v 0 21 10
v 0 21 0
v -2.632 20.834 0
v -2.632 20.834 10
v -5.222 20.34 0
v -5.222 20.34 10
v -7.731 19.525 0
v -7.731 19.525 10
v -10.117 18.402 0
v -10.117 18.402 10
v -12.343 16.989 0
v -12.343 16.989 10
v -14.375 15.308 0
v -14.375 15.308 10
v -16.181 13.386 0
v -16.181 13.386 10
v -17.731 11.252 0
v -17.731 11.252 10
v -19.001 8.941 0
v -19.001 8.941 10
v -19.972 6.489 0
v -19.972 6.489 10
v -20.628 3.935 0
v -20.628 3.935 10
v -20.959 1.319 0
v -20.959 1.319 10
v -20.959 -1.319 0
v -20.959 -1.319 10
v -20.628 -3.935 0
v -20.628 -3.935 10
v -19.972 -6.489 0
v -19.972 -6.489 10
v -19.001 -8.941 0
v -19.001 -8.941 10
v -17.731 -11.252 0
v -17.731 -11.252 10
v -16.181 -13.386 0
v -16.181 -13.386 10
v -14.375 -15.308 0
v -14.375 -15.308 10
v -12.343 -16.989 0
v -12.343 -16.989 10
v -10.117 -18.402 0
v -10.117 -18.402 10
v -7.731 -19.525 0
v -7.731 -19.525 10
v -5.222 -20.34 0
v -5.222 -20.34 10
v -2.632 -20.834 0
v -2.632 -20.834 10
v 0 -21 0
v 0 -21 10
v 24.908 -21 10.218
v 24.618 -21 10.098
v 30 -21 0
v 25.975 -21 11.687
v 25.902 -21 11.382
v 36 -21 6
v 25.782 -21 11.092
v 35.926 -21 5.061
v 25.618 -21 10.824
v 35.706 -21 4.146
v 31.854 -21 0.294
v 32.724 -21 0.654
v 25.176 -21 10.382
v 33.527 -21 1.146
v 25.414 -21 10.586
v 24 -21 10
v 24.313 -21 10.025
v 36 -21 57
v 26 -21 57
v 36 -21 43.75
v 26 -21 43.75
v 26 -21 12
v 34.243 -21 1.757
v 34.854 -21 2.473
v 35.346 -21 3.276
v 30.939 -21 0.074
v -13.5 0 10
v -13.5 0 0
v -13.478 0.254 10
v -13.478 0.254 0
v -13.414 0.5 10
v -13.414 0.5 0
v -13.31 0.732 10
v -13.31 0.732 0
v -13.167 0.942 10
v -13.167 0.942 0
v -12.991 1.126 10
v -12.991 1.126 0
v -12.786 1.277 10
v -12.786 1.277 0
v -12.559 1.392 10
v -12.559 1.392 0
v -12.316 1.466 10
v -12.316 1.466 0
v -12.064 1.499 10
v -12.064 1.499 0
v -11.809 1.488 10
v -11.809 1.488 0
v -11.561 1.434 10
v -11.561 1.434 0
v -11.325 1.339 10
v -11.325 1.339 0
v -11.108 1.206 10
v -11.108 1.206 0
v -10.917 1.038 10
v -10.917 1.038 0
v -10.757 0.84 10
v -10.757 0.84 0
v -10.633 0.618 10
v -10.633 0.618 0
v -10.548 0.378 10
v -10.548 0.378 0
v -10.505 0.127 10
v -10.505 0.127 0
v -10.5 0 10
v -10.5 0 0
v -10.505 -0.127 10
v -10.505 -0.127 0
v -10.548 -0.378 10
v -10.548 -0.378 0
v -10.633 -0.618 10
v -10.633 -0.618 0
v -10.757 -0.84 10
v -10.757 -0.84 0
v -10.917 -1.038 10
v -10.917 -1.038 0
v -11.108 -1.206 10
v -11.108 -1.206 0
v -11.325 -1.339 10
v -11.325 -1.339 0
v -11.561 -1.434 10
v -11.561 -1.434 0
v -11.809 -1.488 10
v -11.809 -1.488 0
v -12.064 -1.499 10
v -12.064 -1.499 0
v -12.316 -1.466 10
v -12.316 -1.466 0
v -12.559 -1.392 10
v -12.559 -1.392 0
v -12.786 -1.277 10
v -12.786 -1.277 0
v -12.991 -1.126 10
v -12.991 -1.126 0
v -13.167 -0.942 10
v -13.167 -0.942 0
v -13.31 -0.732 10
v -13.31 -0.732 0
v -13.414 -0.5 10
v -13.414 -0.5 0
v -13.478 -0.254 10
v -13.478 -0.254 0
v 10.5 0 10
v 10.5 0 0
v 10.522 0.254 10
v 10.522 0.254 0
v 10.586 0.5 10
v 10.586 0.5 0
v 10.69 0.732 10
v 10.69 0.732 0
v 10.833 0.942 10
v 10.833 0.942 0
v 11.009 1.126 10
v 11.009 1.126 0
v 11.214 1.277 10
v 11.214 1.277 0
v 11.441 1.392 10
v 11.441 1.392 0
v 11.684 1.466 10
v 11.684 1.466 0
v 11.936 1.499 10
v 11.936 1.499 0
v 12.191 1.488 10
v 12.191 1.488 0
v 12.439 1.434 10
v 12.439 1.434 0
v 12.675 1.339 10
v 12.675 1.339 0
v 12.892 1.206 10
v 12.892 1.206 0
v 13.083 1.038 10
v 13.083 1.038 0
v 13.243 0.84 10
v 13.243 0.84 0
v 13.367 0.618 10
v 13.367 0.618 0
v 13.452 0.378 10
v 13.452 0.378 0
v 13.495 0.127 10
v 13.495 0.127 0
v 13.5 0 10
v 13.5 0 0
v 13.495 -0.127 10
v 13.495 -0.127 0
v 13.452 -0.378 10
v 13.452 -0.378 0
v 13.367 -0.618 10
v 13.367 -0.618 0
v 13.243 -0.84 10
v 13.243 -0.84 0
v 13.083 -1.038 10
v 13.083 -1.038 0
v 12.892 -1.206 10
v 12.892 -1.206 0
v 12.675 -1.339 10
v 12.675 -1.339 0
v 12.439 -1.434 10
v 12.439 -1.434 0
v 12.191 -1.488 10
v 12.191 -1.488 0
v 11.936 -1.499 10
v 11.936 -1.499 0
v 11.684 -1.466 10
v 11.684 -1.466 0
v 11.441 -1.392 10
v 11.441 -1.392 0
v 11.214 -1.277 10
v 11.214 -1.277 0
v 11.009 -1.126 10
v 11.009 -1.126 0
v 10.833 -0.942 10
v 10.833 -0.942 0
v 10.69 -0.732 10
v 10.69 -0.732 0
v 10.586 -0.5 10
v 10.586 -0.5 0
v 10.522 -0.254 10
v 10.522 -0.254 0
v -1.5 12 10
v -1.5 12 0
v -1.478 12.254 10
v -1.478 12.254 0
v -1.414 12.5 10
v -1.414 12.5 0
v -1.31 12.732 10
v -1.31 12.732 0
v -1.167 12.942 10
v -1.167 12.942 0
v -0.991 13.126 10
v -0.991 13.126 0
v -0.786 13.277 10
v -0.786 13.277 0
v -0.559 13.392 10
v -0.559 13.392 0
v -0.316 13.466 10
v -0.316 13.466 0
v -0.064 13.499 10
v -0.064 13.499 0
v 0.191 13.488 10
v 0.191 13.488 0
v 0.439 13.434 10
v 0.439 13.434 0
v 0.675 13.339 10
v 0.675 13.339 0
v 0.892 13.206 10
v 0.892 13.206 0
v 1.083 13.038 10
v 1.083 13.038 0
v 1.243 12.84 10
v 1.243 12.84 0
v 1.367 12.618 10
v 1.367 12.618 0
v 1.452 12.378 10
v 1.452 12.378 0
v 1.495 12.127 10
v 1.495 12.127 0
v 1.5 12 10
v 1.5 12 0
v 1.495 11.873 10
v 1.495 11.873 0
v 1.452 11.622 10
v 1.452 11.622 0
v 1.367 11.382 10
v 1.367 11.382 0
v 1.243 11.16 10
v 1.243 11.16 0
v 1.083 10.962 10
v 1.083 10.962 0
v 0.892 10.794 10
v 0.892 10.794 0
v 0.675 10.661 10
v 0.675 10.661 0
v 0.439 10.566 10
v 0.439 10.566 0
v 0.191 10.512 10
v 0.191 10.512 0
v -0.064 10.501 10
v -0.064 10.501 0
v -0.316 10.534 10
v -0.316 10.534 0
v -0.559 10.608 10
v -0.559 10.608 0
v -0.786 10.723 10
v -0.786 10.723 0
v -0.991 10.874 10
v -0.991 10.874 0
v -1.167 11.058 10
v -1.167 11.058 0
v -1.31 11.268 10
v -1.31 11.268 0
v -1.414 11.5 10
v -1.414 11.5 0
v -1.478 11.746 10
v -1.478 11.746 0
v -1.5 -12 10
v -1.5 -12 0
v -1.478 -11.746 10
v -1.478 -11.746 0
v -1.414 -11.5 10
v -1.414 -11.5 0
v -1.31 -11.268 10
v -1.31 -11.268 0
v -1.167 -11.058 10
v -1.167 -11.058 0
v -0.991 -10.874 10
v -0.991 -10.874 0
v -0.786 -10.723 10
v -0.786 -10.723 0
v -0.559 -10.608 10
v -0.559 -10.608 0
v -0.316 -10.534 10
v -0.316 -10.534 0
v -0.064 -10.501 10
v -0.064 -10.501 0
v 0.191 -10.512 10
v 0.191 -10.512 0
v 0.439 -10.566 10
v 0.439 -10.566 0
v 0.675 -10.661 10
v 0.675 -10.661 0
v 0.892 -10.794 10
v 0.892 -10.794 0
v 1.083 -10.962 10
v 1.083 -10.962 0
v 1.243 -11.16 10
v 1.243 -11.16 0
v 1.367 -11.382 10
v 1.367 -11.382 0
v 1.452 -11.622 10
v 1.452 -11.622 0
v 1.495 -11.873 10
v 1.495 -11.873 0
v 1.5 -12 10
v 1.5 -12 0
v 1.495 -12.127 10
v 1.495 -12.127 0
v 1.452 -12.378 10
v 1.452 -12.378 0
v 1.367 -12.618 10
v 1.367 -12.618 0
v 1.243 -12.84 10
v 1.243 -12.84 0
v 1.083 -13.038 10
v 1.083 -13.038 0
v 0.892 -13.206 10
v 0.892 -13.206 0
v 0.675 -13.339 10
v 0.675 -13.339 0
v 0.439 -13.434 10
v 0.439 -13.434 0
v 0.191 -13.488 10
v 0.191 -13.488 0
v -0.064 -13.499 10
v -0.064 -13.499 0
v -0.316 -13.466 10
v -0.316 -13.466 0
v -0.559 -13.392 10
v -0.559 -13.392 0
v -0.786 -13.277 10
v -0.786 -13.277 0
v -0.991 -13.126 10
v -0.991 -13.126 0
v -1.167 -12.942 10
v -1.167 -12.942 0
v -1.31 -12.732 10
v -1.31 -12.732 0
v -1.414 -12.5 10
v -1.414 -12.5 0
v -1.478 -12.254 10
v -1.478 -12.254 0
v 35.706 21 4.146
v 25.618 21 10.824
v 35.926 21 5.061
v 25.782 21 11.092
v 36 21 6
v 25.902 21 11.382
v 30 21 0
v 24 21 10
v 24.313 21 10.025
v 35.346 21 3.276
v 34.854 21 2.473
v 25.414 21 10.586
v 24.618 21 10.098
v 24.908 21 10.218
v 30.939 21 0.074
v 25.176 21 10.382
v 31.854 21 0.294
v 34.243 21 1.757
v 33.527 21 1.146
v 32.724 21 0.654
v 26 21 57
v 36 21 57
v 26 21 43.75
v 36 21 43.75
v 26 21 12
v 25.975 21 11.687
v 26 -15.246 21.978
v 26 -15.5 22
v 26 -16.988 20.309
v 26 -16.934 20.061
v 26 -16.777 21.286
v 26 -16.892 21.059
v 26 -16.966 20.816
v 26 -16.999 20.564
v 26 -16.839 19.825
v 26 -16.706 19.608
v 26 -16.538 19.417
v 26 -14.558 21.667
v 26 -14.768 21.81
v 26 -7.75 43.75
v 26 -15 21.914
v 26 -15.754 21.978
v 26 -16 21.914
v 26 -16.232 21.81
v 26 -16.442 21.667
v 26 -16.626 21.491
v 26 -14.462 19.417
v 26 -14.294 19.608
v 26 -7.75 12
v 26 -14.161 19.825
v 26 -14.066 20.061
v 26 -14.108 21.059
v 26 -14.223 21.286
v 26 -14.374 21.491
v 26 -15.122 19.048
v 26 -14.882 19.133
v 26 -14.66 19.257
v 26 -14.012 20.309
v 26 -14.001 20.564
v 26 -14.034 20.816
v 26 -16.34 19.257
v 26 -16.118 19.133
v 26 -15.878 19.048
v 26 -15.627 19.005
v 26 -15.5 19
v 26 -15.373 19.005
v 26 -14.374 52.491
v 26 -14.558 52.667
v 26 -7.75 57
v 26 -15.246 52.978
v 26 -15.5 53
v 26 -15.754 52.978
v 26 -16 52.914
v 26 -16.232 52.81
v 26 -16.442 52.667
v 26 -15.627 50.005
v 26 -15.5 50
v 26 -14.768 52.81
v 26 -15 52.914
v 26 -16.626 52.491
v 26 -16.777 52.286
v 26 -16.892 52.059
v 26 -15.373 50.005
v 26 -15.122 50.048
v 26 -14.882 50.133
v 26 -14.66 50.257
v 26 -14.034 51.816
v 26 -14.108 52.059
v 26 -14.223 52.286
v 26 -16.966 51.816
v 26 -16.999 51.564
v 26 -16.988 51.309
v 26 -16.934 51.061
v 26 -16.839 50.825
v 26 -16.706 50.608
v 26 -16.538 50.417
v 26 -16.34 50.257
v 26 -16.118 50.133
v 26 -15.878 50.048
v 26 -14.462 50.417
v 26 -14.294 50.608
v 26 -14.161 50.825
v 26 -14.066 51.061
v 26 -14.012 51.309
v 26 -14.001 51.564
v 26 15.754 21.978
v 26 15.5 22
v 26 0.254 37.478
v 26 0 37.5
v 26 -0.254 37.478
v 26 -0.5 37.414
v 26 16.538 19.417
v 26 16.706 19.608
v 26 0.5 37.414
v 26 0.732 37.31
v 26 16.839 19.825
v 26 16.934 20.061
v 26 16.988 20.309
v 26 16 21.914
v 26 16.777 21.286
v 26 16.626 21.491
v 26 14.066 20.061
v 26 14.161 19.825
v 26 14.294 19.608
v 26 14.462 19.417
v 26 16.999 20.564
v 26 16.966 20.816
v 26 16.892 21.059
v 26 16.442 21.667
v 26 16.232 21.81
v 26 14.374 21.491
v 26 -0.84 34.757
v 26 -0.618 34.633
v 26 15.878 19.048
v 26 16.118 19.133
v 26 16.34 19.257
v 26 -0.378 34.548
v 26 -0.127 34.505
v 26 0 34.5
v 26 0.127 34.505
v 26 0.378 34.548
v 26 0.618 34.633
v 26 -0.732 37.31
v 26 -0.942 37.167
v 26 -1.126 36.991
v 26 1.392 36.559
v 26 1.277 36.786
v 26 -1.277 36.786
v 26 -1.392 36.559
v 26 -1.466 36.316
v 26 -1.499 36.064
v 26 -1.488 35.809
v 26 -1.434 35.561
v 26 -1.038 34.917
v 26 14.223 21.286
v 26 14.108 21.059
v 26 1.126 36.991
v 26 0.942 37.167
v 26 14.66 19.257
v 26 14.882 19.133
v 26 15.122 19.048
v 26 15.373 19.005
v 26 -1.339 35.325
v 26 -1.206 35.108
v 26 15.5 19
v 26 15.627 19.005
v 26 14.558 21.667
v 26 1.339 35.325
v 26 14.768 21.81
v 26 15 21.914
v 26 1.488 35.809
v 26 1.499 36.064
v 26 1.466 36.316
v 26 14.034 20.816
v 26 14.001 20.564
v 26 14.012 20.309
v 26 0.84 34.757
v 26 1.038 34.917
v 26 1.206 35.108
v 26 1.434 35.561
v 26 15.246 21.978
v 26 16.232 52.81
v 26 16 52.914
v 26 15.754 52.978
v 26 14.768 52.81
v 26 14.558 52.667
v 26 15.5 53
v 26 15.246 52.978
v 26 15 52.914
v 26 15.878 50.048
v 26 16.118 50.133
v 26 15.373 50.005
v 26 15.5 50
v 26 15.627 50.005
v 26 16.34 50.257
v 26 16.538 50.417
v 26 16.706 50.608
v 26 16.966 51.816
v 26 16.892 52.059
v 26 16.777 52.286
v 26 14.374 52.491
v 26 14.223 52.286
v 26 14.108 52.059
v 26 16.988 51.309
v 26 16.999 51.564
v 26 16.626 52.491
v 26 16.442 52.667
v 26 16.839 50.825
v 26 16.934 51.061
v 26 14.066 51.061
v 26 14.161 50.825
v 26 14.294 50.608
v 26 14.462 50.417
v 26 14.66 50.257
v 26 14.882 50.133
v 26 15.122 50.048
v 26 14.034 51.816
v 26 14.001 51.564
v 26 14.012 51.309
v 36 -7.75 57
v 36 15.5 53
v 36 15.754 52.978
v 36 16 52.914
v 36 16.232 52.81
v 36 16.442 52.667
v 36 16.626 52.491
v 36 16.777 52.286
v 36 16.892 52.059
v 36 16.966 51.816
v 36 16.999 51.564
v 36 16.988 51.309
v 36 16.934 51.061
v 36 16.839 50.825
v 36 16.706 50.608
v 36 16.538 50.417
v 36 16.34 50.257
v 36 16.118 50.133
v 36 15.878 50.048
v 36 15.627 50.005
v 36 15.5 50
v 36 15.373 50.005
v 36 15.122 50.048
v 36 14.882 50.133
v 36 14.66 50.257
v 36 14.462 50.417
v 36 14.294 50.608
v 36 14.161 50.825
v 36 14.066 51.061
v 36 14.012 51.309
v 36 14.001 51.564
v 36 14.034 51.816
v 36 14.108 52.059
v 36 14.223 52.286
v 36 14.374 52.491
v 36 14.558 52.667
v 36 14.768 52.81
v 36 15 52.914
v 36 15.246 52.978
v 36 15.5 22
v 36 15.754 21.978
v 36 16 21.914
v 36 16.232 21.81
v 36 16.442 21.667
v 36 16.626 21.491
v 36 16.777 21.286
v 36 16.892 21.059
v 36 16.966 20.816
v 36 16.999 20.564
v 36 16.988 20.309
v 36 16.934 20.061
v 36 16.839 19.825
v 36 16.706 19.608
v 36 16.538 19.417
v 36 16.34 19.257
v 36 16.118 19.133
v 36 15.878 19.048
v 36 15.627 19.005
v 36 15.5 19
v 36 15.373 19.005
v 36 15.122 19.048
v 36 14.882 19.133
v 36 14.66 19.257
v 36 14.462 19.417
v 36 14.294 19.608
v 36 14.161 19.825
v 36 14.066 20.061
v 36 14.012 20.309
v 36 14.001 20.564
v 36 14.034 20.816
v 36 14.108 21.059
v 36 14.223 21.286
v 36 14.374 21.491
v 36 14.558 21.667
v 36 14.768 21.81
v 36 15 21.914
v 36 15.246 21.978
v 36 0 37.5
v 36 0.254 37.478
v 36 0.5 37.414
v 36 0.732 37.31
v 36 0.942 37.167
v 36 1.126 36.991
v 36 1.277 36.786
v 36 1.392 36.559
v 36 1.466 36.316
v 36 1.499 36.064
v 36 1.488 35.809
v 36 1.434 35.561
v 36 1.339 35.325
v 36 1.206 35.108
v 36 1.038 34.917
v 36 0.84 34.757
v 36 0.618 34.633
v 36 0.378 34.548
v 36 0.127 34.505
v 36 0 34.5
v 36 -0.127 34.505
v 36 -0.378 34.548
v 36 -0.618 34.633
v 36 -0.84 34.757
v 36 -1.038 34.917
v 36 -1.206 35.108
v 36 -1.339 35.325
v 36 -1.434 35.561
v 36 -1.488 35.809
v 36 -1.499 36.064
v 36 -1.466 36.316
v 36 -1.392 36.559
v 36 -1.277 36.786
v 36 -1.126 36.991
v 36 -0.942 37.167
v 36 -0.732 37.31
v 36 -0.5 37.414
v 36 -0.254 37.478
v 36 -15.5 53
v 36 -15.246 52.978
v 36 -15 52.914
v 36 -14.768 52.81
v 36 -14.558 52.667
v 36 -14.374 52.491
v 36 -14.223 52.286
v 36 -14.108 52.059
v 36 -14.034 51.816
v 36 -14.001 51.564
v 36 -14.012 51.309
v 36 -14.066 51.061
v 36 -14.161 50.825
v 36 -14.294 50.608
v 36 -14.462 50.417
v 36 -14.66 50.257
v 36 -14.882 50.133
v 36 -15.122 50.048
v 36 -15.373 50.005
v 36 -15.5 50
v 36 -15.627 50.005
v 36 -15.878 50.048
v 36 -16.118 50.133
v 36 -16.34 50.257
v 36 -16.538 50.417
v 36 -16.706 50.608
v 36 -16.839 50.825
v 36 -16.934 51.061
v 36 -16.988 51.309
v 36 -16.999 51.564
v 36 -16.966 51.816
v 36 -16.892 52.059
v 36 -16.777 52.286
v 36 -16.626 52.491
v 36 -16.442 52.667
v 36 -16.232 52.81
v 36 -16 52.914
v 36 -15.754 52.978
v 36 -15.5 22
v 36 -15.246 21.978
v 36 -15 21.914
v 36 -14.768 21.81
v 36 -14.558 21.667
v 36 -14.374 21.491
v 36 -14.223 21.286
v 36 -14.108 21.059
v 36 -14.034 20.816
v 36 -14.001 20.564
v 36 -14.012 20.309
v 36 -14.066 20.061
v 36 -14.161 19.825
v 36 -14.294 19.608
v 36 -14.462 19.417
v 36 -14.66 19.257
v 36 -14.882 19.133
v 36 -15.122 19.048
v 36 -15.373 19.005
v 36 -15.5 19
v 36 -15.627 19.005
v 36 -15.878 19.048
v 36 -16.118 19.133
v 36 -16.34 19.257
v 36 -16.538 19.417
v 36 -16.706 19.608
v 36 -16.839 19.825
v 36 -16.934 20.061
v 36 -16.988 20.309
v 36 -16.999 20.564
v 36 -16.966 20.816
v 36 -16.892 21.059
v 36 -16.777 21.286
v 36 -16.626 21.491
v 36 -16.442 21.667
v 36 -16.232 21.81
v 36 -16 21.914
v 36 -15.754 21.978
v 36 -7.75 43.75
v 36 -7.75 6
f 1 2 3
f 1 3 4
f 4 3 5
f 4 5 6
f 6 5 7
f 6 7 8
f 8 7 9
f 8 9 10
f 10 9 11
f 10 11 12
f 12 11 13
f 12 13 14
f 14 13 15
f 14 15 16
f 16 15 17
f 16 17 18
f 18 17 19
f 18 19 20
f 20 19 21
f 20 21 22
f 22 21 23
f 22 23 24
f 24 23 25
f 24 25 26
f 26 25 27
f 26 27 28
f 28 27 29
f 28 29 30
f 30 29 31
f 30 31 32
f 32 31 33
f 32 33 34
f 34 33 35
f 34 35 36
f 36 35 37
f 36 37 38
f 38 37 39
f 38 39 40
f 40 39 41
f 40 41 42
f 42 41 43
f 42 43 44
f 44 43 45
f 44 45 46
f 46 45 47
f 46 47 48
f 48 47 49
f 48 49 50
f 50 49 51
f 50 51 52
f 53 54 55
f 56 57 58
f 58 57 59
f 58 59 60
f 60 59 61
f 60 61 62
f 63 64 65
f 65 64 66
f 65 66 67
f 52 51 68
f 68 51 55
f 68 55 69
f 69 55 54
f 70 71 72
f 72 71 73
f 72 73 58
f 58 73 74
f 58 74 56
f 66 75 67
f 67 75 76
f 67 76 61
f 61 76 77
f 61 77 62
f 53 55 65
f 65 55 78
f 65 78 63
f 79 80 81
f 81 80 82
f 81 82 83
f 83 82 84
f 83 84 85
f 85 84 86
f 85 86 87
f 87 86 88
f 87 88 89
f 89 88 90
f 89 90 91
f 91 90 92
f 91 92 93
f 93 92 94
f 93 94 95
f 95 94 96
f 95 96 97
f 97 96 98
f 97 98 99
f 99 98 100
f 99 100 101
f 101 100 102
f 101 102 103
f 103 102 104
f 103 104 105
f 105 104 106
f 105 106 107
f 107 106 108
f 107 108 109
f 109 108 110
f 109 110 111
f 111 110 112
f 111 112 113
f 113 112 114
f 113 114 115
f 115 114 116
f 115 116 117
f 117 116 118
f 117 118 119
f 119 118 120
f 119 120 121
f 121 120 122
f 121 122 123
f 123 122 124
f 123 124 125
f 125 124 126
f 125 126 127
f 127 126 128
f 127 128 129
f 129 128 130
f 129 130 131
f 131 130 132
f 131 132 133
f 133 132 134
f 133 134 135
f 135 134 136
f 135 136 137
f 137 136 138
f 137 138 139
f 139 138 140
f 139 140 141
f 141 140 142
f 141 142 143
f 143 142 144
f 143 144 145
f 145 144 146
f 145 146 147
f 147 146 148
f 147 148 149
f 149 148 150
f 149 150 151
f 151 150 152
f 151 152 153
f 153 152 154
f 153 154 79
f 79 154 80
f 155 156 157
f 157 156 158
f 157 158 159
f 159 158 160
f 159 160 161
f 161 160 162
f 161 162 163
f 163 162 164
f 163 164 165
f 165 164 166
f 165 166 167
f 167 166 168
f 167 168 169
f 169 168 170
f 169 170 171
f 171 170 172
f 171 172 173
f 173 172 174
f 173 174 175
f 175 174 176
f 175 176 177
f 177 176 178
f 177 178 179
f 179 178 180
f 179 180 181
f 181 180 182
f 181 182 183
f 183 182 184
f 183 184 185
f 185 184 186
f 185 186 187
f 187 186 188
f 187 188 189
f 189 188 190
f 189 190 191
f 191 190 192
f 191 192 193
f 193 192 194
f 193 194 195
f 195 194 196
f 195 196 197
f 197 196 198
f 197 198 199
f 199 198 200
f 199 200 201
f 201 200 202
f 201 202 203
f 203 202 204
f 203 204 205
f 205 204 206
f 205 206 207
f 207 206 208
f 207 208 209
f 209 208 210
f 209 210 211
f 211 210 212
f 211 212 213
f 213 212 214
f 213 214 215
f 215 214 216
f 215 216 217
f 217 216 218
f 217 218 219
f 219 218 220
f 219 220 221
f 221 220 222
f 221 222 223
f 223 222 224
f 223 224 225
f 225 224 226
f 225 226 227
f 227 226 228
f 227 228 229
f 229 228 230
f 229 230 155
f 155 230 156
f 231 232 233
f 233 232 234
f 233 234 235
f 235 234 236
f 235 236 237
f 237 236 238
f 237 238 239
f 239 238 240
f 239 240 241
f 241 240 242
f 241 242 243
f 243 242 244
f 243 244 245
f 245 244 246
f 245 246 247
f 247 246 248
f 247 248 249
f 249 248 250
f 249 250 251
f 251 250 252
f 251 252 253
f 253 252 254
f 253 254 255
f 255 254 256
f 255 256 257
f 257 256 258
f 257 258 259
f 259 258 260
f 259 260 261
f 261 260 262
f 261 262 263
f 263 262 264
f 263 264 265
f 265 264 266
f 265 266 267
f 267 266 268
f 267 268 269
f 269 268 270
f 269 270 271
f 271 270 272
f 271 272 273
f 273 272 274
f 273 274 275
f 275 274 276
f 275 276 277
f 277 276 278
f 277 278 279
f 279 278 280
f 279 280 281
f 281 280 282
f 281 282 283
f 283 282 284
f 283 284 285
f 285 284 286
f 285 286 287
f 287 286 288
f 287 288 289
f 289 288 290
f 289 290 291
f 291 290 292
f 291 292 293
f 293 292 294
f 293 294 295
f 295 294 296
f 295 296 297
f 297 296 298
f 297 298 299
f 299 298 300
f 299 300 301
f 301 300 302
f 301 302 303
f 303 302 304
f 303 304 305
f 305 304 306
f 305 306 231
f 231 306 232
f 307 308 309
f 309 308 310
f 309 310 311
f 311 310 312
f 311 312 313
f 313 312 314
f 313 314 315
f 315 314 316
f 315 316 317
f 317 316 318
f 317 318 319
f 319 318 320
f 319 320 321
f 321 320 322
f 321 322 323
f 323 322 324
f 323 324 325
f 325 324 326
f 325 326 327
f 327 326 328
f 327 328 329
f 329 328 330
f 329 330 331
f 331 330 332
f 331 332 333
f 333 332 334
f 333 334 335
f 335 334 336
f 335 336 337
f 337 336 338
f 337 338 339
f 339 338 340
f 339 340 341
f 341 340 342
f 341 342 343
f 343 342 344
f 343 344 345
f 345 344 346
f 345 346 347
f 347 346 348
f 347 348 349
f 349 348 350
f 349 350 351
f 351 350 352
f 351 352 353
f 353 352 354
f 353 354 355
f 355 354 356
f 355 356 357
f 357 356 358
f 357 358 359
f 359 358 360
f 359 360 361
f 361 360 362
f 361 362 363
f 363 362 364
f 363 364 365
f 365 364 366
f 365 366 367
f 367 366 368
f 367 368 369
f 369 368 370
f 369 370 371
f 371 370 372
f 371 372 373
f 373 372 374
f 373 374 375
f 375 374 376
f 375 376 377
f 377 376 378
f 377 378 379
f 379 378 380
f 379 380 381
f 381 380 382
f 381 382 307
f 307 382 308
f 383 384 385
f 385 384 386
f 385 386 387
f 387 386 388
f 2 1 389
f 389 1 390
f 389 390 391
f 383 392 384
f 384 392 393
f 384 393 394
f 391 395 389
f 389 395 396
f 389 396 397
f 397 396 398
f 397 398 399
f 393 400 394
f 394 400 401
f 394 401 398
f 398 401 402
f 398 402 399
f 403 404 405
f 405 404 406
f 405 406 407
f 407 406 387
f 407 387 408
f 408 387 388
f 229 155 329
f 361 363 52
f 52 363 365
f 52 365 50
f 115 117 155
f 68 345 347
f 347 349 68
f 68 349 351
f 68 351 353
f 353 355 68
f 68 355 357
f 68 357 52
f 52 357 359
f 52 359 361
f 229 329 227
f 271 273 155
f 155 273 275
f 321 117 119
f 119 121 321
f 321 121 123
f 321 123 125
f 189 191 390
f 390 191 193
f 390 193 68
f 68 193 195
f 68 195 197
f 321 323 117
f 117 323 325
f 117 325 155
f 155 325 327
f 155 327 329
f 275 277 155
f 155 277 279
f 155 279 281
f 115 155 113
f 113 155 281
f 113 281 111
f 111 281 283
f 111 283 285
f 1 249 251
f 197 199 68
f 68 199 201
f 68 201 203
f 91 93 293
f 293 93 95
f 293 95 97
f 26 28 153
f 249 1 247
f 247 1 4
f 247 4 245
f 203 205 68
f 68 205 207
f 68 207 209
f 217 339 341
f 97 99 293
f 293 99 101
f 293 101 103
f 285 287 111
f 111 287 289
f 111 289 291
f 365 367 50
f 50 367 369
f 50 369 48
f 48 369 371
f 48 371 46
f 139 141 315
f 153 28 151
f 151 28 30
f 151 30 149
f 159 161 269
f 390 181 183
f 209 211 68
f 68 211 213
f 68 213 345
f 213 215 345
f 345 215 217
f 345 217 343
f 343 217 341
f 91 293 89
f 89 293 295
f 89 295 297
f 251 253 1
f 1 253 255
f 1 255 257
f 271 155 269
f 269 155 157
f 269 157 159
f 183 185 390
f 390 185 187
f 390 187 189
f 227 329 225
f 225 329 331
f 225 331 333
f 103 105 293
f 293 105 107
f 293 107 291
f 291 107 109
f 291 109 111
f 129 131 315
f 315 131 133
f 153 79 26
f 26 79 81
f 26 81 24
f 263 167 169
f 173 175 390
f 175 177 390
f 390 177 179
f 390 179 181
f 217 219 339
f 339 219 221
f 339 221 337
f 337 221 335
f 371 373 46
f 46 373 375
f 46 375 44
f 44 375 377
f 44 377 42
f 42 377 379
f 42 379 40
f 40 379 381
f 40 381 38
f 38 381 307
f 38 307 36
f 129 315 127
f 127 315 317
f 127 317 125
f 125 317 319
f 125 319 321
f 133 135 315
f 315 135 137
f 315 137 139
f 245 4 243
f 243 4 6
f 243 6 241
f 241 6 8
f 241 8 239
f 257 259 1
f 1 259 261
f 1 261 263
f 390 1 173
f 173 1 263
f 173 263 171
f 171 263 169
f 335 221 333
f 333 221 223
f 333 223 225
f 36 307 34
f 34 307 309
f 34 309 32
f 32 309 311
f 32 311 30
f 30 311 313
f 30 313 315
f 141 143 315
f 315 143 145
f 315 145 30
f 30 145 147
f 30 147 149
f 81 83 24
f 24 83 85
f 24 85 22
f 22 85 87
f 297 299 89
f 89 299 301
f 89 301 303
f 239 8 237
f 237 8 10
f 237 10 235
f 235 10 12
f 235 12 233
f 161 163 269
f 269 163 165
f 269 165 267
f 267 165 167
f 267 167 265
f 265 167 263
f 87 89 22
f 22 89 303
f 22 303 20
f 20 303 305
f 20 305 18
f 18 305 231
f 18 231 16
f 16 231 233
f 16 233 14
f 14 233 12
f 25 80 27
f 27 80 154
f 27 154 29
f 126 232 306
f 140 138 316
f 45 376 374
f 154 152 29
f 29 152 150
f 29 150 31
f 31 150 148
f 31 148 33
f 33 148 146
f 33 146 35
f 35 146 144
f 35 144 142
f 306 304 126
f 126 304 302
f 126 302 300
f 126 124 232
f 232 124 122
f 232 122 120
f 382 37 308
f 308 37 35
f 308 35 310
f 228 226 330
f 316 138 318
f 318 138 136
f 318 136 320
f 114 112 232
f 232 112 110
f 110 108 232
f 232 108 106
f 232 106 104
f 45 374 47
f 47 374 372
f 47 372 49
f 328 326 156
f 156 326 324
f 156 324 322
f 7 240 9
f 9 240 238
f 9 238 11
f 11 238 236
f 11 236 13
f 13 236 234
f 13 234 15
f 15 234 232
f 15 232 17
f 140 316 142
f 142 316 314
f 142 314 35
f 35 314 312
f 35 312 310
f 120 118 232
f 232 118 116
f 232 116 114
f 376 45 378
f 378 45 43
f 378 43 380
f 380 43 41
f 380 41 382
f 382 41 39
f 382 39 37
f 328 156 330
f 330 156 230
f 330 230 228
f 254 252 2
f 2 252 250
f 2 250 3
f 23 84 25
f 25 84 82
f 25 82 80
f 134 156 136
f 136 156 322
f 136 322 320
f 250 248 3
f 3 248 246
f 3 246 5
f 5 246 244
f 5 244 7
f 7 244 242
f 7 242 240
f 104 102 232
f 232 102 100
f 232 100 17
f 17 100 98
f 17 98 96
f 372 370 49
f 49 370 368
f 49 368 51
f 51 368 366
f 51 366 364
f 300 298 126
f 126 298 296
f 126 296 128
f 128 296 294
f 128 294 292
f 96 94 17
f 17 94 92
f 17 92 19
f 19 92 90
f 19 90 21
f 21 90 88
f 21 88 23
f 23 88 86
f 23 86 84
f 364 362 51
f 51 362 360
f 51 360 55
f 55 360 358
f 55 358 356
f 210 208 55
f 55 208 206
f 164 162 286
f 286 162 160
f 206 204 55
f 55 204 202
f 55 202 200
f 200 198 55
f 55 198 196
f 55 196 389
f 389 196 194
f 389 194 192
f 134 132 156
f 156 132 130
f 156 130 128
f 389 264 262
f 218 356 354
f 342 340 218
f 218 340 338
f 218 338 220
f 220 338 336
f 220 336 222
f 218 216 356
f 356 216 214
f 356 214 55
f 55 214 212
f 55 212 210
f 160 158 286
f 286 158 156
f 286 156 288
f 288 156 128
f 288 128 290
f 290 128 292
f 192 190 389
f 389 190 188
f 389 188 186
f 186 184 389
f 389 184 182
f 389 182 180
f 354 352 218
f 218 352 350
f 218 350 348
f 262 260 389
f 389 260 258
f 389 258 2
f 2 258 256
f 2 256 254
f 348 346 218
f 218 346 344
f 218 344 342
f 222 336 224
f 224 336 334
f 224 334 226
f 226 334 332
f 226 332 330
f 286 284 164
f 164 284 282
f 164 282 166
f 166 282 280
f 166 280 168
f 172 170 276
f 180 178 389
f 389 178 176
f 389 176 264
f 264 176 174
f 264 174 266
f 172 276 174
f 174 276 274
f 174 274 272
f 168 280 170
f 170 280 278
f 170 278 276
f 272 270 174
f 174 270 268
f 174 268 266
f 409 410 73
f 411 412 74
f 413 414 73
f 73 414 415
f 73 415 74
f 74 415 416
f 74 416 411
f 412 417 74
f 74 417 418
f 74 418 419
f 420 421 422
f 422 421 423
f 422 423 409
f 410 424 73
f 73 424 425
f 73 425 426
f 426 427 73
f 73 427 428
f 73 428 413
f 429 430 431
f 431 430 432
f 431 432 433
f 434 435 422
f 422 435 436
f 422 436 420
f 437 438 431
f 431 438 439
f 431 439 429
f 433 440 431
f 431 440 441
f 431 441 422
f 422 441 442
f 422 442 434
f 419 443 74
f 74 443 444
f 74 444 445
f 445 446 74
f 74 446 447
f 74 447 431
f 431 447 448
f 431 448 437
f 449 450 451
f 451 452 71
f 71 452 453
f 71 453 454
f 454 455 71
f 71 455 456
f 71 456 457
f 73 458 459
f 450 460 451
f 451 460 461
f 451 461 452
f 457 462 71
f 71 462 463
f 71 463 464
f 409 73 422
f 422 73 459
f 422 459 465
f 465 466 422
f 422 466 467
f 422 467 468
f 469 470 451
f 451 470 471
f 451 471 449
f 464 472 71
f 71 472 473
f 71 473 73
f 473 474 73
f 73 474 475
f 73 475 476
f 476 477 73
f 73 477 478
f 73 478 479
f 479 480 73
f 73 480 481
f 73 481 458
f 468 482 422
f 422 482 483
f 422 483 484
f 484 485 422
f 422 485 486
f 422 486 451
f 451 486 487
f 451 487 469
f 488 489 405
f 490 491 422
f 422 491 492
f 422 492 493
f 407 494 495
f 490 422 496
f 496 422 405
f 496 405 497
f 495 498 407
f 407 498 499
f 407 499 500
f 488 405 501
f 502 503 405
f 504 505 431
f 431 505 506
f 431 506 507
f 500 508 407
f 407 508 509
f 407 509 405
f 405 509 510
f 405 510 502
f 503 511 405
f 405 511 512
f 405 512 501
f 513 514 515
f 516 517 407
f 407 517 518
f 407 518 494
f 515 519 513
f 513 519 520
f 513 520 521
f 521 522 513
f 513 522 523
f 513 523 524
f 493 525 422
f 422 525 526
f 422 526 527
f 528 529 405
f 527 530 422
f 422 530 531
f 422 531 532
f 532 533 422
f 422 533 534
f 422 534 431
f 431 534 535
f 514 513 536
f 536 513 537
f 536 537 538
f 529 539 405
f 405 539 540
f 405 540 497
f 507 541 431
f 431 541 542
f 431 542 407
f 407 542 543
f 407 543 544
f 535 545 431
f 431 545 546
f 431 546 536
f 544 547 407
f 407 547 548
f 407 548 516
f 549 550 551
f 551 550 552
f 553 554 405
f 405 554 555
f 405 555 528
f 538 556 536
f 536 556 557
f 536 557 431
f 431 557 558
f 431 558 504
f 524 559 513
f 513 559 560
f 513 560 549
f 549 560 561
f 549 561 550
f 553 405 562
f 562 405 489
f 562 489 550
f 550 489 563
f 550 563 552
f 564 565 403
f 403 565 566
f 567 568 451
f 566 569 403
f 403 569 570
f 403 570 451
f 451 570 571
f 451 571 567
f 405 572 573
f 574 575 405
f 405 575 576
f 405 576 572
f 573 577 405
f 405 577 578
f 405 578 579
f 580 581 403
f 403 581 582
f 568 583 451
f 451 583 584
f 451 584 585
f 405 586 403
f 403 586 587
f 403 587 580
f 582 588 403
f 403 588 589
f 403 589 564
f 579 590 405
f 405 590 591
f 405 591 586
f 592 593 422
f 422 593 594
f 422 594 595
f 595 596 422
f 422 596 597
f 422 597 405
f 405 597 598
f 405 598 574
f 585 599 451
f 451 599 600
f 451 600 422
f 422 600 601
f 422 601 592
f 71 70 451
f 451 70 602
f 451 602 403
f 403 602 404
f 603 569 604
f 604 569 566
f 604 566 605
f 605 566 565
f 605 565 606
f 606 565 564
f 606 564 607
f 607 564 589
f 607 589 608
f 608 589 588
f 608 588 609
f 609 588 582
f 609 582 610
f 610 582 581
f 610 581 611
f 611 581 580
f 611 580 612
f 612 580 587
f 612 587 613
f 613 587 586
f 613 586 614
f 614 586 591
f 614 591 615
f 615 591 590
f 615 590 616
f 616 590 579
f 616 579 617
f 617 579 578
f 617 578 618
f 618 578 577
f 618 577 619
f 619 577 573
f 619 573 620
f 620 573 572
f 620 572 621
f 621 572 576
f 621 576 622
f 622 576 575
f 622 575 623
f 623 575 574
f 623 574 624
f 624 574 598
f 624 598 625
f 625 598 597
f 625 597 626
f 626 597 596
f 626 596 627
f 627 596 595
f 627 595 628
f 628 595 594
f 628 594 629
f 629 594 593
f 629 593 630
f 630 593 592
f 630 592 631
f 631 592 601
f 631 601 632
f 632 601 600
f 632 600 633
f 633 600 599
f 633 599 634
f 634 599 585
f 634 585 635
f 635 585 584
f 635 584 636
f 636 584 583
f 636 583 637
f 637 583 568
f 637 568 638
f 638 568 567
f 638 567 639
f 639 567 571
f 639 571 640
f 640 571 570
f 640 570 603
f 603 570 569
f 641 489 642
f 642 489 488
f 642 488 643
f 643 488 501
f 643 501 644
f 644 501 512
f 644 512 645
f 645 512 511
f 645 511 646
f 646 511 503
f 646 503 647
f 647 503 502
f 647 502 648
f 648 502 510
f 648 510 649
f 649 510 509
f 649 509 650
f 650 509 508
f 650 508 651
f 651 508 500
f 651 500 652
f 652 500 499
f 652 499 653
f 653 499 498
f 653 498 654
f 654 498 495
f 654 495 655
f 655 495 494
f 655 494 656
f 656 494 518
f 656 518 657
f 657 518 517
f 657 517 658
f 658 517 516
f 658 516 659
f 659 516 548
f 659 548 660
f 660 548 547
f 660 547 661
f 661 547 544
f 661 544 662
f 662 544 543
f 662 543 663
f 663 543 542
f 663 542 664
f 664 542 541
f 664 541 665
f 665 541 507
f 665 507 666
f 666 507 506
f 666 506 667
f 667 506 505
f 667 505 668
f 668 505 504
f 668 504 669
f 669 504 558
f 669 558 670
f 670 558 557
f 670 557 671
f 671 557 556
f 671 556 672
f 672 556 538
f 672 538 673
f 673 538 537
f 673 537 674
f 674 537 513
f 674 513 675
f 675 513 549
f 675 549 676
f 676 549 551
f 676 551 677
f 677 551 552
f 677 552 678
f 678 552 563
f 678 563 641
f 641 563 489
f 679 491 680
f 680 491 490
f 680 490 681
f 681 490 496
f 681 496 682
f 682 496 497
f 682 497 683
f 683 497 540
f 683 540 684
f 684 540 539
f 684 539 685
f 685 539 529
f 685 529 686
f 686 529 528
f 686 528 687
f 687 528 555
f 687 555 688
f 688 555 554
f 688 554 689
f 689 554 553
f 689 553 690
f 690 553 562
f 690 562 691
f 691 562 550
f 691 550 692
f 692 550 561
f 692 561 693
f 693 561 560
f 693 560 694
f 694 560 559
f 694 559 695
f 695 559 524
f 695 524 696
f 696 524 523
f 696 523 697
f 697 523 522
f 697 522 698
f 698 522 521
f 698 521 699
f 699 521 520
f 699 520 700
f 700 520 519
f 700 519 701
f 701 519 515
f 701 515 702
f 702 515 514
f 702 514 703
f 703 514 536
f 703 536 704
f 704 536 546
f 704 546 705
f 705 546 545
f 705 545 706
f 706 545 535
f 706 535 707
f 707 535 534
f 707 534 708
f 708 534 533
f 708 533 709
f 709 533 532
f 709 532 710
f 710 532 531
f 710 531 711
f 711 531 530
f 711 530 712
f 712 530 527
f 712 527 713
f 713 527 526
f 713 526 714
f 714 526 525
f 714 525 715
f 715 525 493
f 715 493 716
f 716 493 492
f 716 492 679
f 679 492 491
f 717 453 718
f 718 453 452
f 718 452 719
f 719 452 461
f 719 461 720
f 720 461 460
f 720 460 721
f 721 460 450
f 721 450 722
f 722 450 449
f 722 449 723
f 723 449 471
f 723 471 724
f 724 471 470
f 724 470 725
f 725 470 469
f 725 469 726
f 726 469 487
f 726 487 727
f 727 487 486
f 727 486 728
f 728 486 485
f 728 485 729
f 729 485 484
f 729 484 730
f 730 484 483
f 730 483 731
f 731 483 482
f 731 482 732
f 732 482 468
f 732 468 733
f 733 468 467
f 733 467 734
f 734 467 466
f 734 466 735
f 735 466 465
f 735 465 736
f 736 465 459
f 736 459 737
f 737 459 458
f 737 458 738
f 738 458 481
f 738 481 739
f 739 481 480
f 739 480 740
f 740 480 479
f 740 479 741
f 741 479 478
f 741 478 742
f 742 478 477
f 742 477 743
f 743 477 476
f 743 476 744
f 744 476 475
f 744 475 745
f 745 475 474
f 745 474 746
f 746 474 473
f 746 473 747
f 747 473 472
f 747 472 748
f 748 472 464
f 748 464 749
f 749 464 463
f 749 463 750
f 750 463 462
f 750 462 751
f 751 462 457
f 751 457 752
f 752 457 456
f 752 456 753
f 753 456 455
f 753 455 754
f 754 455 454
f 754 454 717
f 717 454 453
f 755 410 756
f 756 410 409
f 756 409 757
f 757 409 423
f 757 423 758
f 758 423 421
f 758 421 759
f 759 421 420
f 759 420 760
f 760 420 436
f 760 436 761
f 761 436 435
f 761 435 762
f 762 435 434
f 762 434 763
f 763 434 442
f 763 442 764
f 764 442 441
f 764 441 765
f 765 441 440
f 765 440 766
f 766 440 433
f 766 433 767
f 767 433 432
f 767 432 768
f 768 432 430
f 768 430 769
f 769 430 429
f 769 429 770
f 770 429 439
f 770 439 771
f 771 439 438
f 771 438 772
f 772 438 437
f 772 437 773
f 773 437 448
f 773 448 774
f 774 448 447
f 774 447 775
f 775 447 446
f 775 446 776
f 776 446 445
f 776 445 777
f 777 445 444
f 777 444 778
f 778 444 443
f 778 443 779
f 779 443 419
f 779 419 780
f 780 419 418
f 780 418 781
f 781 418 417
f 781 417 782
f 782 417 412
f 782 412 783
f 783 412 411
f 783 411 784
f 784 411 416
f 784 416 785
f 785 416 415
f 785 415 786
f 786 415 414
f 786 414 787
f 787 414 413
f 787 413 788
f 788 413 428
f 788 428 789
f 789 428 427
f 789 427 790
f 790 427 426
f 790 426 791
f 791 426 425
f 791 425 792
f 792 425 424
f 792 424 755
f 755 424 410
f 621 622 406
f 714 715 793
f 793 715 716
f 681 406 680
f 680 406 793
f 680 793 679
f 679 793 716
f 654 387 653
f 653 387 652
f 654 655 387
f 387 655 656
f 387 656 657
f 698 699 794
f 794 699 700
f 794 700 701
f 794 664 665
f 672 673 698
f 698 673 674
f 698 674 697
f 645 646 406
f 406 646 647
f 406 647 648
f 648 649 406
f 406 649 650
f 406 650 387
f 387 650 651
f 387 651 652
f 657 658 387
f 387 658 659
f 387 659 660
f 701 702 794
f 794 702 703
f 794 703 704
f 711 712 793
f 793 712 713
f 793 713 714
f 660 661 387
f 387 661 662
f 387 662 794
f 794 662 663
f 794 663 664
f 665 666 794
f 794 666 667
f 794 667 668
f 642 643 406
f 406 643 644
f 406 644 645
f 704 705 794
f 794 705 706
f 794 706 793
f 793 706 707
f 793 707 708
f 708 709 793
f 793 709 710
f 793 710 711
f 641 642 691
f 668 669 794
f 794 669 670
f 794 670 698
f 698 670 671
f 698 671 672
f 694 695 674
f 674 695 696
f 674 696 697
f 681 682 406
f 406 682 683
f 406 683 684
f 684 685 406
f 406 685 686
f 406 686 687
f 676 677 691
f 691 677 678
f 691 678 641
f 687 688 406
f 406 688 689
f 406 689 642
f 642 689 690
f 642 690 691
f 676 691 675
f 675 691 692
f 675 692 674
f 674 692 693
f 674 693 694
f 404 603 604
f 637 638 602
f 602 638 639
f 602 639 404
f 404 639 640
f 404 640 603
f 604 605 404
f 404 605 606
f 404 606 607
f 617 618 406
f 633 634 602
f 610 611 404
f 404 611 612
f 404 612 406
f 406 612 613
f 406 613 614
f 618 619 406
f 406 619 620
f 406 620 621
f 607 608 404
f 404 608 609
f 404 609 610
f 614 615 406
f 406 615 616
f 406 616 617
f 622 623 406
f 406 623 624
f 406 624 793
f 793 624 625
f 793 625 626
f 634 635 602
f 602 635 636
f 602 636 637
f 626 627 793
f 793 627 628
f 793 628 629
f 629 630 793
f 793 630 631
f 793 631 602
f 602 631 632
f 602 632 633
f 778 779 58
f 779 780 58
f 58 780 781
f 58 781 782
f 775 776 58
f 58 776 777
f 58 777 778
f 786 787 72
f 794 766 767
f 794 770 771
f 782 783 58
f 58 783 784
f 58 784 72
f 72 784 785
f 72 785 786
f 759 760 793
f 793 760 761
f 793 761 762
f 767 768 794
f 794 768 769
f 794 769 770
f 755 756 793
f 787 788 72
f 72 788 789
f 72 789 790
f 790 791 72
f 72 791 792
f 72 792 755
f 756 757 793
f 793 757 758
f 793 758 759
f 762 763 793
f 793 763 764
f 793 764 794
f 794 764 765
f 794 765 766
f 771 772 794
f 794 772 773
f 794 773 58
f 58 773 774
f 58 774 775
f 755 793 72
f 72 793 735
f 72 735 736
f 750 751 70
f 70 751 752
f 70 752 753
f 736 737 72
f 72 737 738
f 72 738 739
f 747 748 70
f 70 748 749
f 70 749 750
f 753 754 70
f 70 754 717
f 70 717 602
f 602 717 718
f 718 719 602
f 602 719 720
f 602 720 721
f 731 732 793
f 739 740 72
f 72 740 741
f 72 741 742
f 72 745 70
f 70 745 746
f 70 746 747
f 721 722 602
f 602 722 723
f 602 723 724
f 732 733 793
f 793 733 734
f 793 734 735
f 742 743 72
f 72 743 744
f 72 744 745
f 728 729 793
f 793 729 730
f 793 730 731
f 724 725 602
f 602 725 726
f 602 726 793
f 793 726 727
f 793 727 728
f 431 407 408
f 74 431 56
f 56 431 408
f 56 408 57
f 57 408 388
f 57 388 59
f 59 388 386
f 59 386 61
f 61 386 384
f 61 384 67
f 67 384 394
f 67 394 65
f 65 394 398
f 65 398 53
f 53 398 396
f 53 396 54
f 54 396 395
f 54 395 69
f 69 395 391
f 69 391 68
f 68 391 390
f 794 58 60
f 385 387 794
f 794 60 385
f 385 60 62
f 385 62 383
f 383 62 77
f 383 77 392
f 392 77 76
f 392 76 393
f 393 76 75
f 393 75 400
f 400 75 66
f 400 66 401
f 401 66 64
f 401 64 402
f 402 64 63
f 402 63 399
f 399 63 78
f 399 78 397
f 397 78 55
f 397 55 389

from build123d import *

# Parameters (mm, degrees)
SKETCH_1_W      = 5
SKETCH_1_H      = 42
EXTRUDE_1_DEPTH = 10
SKETCH_2_W      = 57
SKETCH_2_H      = 42
SKETCH_2_R      = 1.5
EXTRUDE_2_DEPTH = 10
FILLET_1_R      = 2
FILLET_2_R      = 6


with BuildPart() as part:
    # 草图1 → 凸台-拉伸1 (new body)
    with BuildSketch(Plane.XY):
        with BuildLine():
            Line((0, 13.5), (0, 21))
            ThreePointArc((0, 21), (-21, 0), (0, -21))
            Line((0, -21), (0, -13.5))
            ThreePointArc((0, -13.5), (-1.09330348, -13.026979795), (-1.497067446, -11.90625))
            ThreePointArc((-1.497067446, -11.90625), (-8.485281374, -8.485281374), (-11.90625, -1.497067446))
            ThreePointArc((-11.90625, -1.497067446), (-13.5, 0), (-11.90625, 1.497067446))
            ThreePointArc((-11.90625, 1.497067446), (-8.485281374, 8.485281374), (-1.497067446, 11.90625))
            ThreePointArc((-1.497067446, 11.90625), (-1.09330348, 13.026979795), (0, 13.5))
        make_face()
        with BuildLine():
            ThreePointArc((21, 0), (14.849242405, 14.849242405), (0, 21))
            Line((0, 21), (0, 13.5))
            ThreePointArc((0, 13.5), (1.060660172, 13.060660172), (1.5, 12))
            ThreePointArc((1.5, 12), (1.499266682, 11.953102073), (1.497067446, 11.90625))
            ThreePointArc((1.497067446, 11.90625), (8.485281374, 8.485281374), (11.90625, 1.497067446))
            ThreePointArc((11.90625, 1.497067446), (13.026979795, 1.09330348), (13.5, 0))
            ThreePointArc((13.5, 0), (13.026979795, -1.09330348), (11.90625, -1.497067446))
            ThreePointArc((11.90625, -1.497067446), (8.485281374, -8.485281374), (1.497067446, -11.90625))
            ThreePointArc((1.497067446, -11.90625), (1.499266682, -11.953102073), (1.5, -12))
            ThreePointArc((1.5, -12), (1.060660172, -13.060660172), (0, -13.5))
            Line((0, -13.5), (0, -21))
            ThreePointArc((0, -21), (14.849242405, -14.849242405), (21, 0))
        make_face()
        with BuildLine():
            ThreePointArc((0, 10.5), (-1.026979795, 10.90669652), (-1.497067446, 11.90625))
            ThreePointArc((-1.497067446, 11.90625), (-8.485281374, 8.485281374), (-11.90625, 1.497067446))
            ThreePointArc((-11.90625, 1.497067446), (-10.90669652, 1.026979795), (-10.5, 0))
            ThreePointArc((-10.5, 0), (-10.90669652, -1.026979795), (-11.90625, -1.497067446))
            ThreePointArc((-11.90625, -1.497067446), (-8.485281374, -8.485281374), (-1.497067446, -11.90625))
            ThreePointArc((-1.497067446, -11.90625), (-1.026979795, -10.90669652), (0, -10.5))
            Line((0, -10.5), (0, 10.5))
        make_face()
        with BuildLine():
            ThreePointArc((1.497067446, 11.90625), (1.026979795, 10.90669652), (0, 10.5))
            Line((0, 10.5), (0, -10.5))
            ThreePointArc((0, -10.5), (1.026979795, -10.90669652), (1.497067446, -11.90625))
            ThreePointArc((1.497067446, -11.90625), (8.485281374, -8.485281374), (11.90625, -1.497067446))
            ThreePointArc((11.90625, -1.497067446), (10.5, 0), (11.90625, 1.497067446))
            ThreePointArc((11.90625, 1.497067446), (8.485281374, 8.485281374), (1.497067446, 11.90625))
        make_face()
        with BuildLine():
            Line((21, 21), (0, 21))
            ThreePointArc((0, 21), (14.849242405, 14.849242405), (21, 0))
            Line((21, 0), (21, 21))
        make_face()
        with Locations((23.5, 0)):
            Rectangle(SKETCH_1_W, SKETCH_1_H)
        Polygon((26, 21), (21, 21), (21, 0), (21, -21), (26, -21), align=None)
        with BuildLine():
            Line((21, -21), (21, 0))
            ThreePointArc((21, 0), (14.849242405, -14.849242405), (0, -21))
            Line((0, -21), (21, -21))
        make_face()
    extrude(amount=EXTRUDE_1_DEPTH)

    # 草图2 → 凸台-拉伸2 (add)
    with BuildSketch(Plane(origin=(26, 0, 0), x_dir=(0, 0, -1), z_dir=(1, 0, 0))):
        with Locations((-28.5, 0)):
            Rectangle(SKETCH_2_W, SKETCH_2_H)
        with Locations((-51.5, 15.5)):
            Circle(SKETCH_2_R, mode=Mode.SUBTRACT)
        with Locations((-36, 0)):
            Circle(SKETCH_2_R, mode=Mode.SUBTRACT)
        with Locations((-51.5, -15.5)):
            Circle(SKETCH_2_R, mode=Mode.SUBTRACT)
        with Locations((-20.5, -15.5)):
            Circle(SKETCH_2_R, mode=Mode.SUBTRACT)
        with Locations((-20.5, 15.5)):
            Circle(SKETCH_2_R, mode=Mode.SUBTRACT)
    extrude(amount=EXTRUDE_2_DEPTH)

    # 圆角1
    fillet_1_edges = [part.edges().sort_by_distance(p)[0] for p in [
        (26, 0, 10),
    ]]
    fillet(fillet_1_edges, radius=FILLET_1_R)

    # 圆角2
    fillet_2_edges = [part.edges().sort_by_distance(p)[0] for p in [
        (36, 0, 0),
    ]]
    fillet(fillet_2_edges, radius=FILLET_2_R)


solid = part.part
